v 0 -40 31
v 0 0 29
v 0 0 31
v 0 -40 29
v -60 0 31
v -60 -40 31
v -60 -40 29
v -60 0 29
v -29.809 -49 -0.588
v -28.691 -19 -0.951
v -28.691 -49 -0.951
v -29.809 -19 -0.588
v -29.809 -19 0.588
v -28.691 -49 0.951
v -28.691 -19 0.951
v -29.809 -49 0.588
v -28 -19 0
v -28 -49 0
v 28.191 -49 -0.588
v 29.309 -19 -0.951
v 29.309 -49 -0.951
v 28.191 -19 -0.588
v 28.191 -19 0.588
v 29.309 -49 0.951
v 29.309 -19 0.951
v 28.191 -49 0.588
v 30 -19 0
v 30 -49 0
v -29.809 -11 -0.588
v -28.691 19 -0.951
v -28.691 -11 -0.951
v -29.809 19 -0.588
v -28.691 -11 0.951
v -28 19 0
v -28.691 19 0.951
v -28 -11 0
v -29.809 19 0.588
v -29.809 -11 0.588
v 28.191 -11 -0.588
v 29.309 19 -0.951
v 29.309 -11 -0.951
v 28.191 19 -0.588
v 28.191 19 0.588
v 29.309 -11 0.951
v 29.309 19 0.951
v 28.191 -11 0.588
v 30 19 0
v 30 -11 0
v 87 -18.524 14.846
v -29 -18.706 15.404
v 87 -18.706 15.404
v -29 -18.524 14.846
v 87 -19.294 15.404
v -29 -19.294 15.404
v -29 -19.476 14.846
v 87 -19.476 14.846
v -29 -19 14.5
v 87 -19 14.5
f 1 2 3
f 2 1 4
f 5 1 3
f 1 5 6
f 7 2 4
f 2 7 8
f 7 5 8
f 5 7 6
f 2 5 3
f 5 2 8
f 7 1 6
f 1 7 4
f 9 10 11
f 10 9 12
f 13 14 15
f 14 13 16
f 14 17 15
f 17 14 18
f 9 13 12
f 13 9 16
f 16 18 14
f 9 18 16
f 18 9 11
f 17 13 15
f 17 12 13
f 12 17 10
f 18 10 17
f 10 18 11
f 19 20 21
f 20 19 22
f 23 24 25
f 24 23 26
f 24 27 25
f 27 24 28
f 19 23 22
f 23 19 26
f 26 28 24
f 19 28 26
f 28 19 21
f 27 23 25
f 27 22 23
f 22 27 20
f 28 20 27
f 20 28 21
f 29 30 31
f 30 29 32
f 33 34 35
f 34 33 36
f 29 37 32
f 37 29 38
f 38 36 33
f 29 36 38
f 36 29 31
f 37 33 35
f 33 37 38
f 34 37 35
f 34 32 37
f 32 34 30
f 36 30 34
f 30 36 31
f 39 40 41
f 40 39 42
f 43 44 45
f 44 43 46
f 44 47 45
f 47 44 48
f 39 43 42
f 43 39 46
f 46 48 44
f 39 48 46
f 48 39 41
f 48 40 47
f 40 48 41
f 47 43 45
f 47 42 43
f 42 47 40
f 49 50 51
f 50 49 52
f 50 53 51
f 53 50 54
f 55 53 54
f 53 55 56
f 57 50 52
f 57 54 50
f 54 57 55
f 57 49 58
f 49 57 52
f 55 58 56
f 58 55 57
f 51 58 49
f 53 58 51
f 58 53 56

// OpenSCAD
// Define dimensions
tabletop_length = 60;
tabletop_width = 40;
tabletop_thickness = 2;
leg_radius = 1;
leg_height = 30;
crossbar_radius = 0.5;
crossbar_height = tabletop_length - 2 * leg_radius;  // The length of the crossbar

// Module definitions
module tabletop() {
    translate([0, 0, leg_height])
        cube([tabletop_length, tabletop_width, tabletop_thickness], center = true);
}

module leg() {
    cylinder(h = leg_height, r = leg_radius, center = false);
}

module crossbar() {
    cylinder(h = crossbar_height, r = crossbar_radius, center = false);
}

// Assemble the table
translate([-tabletop_length/2, -tabletop_width/2, 0]) {
    // Create the tabletop
    tabletop();
    
    // Create the legs
    translate([leg_radius, leg_radius, 0]) rotate([90, 0, 0]) leg(); // Leg 1
    translate([tabletop_length - leg_radius, leg_radius, 0]) rotate([90, 0, 0]) leg(); // Leg 2
    translate([leg_radius, tabletop_width - leg_radius, 0]) rotate([90, 0, 0]) leg(); // Leg 3
    translate([tabletop_length - leg_radius, tabletop_width - leg_radius, 0]) rotate([90, 0, 0]) leg(); // Leg 4

    // Create the horizontal crossbars
    translate([leg_radius, leg_radius, leg_height/2]) rotate([0, 90, 0]) crossbar(); // Crossbar 1
    translate([tabletop_length - leg_radius, leg_radius, leg_height/2]) rotate([0, 90, 0]) crossbar(); // Crossbar 2
}
